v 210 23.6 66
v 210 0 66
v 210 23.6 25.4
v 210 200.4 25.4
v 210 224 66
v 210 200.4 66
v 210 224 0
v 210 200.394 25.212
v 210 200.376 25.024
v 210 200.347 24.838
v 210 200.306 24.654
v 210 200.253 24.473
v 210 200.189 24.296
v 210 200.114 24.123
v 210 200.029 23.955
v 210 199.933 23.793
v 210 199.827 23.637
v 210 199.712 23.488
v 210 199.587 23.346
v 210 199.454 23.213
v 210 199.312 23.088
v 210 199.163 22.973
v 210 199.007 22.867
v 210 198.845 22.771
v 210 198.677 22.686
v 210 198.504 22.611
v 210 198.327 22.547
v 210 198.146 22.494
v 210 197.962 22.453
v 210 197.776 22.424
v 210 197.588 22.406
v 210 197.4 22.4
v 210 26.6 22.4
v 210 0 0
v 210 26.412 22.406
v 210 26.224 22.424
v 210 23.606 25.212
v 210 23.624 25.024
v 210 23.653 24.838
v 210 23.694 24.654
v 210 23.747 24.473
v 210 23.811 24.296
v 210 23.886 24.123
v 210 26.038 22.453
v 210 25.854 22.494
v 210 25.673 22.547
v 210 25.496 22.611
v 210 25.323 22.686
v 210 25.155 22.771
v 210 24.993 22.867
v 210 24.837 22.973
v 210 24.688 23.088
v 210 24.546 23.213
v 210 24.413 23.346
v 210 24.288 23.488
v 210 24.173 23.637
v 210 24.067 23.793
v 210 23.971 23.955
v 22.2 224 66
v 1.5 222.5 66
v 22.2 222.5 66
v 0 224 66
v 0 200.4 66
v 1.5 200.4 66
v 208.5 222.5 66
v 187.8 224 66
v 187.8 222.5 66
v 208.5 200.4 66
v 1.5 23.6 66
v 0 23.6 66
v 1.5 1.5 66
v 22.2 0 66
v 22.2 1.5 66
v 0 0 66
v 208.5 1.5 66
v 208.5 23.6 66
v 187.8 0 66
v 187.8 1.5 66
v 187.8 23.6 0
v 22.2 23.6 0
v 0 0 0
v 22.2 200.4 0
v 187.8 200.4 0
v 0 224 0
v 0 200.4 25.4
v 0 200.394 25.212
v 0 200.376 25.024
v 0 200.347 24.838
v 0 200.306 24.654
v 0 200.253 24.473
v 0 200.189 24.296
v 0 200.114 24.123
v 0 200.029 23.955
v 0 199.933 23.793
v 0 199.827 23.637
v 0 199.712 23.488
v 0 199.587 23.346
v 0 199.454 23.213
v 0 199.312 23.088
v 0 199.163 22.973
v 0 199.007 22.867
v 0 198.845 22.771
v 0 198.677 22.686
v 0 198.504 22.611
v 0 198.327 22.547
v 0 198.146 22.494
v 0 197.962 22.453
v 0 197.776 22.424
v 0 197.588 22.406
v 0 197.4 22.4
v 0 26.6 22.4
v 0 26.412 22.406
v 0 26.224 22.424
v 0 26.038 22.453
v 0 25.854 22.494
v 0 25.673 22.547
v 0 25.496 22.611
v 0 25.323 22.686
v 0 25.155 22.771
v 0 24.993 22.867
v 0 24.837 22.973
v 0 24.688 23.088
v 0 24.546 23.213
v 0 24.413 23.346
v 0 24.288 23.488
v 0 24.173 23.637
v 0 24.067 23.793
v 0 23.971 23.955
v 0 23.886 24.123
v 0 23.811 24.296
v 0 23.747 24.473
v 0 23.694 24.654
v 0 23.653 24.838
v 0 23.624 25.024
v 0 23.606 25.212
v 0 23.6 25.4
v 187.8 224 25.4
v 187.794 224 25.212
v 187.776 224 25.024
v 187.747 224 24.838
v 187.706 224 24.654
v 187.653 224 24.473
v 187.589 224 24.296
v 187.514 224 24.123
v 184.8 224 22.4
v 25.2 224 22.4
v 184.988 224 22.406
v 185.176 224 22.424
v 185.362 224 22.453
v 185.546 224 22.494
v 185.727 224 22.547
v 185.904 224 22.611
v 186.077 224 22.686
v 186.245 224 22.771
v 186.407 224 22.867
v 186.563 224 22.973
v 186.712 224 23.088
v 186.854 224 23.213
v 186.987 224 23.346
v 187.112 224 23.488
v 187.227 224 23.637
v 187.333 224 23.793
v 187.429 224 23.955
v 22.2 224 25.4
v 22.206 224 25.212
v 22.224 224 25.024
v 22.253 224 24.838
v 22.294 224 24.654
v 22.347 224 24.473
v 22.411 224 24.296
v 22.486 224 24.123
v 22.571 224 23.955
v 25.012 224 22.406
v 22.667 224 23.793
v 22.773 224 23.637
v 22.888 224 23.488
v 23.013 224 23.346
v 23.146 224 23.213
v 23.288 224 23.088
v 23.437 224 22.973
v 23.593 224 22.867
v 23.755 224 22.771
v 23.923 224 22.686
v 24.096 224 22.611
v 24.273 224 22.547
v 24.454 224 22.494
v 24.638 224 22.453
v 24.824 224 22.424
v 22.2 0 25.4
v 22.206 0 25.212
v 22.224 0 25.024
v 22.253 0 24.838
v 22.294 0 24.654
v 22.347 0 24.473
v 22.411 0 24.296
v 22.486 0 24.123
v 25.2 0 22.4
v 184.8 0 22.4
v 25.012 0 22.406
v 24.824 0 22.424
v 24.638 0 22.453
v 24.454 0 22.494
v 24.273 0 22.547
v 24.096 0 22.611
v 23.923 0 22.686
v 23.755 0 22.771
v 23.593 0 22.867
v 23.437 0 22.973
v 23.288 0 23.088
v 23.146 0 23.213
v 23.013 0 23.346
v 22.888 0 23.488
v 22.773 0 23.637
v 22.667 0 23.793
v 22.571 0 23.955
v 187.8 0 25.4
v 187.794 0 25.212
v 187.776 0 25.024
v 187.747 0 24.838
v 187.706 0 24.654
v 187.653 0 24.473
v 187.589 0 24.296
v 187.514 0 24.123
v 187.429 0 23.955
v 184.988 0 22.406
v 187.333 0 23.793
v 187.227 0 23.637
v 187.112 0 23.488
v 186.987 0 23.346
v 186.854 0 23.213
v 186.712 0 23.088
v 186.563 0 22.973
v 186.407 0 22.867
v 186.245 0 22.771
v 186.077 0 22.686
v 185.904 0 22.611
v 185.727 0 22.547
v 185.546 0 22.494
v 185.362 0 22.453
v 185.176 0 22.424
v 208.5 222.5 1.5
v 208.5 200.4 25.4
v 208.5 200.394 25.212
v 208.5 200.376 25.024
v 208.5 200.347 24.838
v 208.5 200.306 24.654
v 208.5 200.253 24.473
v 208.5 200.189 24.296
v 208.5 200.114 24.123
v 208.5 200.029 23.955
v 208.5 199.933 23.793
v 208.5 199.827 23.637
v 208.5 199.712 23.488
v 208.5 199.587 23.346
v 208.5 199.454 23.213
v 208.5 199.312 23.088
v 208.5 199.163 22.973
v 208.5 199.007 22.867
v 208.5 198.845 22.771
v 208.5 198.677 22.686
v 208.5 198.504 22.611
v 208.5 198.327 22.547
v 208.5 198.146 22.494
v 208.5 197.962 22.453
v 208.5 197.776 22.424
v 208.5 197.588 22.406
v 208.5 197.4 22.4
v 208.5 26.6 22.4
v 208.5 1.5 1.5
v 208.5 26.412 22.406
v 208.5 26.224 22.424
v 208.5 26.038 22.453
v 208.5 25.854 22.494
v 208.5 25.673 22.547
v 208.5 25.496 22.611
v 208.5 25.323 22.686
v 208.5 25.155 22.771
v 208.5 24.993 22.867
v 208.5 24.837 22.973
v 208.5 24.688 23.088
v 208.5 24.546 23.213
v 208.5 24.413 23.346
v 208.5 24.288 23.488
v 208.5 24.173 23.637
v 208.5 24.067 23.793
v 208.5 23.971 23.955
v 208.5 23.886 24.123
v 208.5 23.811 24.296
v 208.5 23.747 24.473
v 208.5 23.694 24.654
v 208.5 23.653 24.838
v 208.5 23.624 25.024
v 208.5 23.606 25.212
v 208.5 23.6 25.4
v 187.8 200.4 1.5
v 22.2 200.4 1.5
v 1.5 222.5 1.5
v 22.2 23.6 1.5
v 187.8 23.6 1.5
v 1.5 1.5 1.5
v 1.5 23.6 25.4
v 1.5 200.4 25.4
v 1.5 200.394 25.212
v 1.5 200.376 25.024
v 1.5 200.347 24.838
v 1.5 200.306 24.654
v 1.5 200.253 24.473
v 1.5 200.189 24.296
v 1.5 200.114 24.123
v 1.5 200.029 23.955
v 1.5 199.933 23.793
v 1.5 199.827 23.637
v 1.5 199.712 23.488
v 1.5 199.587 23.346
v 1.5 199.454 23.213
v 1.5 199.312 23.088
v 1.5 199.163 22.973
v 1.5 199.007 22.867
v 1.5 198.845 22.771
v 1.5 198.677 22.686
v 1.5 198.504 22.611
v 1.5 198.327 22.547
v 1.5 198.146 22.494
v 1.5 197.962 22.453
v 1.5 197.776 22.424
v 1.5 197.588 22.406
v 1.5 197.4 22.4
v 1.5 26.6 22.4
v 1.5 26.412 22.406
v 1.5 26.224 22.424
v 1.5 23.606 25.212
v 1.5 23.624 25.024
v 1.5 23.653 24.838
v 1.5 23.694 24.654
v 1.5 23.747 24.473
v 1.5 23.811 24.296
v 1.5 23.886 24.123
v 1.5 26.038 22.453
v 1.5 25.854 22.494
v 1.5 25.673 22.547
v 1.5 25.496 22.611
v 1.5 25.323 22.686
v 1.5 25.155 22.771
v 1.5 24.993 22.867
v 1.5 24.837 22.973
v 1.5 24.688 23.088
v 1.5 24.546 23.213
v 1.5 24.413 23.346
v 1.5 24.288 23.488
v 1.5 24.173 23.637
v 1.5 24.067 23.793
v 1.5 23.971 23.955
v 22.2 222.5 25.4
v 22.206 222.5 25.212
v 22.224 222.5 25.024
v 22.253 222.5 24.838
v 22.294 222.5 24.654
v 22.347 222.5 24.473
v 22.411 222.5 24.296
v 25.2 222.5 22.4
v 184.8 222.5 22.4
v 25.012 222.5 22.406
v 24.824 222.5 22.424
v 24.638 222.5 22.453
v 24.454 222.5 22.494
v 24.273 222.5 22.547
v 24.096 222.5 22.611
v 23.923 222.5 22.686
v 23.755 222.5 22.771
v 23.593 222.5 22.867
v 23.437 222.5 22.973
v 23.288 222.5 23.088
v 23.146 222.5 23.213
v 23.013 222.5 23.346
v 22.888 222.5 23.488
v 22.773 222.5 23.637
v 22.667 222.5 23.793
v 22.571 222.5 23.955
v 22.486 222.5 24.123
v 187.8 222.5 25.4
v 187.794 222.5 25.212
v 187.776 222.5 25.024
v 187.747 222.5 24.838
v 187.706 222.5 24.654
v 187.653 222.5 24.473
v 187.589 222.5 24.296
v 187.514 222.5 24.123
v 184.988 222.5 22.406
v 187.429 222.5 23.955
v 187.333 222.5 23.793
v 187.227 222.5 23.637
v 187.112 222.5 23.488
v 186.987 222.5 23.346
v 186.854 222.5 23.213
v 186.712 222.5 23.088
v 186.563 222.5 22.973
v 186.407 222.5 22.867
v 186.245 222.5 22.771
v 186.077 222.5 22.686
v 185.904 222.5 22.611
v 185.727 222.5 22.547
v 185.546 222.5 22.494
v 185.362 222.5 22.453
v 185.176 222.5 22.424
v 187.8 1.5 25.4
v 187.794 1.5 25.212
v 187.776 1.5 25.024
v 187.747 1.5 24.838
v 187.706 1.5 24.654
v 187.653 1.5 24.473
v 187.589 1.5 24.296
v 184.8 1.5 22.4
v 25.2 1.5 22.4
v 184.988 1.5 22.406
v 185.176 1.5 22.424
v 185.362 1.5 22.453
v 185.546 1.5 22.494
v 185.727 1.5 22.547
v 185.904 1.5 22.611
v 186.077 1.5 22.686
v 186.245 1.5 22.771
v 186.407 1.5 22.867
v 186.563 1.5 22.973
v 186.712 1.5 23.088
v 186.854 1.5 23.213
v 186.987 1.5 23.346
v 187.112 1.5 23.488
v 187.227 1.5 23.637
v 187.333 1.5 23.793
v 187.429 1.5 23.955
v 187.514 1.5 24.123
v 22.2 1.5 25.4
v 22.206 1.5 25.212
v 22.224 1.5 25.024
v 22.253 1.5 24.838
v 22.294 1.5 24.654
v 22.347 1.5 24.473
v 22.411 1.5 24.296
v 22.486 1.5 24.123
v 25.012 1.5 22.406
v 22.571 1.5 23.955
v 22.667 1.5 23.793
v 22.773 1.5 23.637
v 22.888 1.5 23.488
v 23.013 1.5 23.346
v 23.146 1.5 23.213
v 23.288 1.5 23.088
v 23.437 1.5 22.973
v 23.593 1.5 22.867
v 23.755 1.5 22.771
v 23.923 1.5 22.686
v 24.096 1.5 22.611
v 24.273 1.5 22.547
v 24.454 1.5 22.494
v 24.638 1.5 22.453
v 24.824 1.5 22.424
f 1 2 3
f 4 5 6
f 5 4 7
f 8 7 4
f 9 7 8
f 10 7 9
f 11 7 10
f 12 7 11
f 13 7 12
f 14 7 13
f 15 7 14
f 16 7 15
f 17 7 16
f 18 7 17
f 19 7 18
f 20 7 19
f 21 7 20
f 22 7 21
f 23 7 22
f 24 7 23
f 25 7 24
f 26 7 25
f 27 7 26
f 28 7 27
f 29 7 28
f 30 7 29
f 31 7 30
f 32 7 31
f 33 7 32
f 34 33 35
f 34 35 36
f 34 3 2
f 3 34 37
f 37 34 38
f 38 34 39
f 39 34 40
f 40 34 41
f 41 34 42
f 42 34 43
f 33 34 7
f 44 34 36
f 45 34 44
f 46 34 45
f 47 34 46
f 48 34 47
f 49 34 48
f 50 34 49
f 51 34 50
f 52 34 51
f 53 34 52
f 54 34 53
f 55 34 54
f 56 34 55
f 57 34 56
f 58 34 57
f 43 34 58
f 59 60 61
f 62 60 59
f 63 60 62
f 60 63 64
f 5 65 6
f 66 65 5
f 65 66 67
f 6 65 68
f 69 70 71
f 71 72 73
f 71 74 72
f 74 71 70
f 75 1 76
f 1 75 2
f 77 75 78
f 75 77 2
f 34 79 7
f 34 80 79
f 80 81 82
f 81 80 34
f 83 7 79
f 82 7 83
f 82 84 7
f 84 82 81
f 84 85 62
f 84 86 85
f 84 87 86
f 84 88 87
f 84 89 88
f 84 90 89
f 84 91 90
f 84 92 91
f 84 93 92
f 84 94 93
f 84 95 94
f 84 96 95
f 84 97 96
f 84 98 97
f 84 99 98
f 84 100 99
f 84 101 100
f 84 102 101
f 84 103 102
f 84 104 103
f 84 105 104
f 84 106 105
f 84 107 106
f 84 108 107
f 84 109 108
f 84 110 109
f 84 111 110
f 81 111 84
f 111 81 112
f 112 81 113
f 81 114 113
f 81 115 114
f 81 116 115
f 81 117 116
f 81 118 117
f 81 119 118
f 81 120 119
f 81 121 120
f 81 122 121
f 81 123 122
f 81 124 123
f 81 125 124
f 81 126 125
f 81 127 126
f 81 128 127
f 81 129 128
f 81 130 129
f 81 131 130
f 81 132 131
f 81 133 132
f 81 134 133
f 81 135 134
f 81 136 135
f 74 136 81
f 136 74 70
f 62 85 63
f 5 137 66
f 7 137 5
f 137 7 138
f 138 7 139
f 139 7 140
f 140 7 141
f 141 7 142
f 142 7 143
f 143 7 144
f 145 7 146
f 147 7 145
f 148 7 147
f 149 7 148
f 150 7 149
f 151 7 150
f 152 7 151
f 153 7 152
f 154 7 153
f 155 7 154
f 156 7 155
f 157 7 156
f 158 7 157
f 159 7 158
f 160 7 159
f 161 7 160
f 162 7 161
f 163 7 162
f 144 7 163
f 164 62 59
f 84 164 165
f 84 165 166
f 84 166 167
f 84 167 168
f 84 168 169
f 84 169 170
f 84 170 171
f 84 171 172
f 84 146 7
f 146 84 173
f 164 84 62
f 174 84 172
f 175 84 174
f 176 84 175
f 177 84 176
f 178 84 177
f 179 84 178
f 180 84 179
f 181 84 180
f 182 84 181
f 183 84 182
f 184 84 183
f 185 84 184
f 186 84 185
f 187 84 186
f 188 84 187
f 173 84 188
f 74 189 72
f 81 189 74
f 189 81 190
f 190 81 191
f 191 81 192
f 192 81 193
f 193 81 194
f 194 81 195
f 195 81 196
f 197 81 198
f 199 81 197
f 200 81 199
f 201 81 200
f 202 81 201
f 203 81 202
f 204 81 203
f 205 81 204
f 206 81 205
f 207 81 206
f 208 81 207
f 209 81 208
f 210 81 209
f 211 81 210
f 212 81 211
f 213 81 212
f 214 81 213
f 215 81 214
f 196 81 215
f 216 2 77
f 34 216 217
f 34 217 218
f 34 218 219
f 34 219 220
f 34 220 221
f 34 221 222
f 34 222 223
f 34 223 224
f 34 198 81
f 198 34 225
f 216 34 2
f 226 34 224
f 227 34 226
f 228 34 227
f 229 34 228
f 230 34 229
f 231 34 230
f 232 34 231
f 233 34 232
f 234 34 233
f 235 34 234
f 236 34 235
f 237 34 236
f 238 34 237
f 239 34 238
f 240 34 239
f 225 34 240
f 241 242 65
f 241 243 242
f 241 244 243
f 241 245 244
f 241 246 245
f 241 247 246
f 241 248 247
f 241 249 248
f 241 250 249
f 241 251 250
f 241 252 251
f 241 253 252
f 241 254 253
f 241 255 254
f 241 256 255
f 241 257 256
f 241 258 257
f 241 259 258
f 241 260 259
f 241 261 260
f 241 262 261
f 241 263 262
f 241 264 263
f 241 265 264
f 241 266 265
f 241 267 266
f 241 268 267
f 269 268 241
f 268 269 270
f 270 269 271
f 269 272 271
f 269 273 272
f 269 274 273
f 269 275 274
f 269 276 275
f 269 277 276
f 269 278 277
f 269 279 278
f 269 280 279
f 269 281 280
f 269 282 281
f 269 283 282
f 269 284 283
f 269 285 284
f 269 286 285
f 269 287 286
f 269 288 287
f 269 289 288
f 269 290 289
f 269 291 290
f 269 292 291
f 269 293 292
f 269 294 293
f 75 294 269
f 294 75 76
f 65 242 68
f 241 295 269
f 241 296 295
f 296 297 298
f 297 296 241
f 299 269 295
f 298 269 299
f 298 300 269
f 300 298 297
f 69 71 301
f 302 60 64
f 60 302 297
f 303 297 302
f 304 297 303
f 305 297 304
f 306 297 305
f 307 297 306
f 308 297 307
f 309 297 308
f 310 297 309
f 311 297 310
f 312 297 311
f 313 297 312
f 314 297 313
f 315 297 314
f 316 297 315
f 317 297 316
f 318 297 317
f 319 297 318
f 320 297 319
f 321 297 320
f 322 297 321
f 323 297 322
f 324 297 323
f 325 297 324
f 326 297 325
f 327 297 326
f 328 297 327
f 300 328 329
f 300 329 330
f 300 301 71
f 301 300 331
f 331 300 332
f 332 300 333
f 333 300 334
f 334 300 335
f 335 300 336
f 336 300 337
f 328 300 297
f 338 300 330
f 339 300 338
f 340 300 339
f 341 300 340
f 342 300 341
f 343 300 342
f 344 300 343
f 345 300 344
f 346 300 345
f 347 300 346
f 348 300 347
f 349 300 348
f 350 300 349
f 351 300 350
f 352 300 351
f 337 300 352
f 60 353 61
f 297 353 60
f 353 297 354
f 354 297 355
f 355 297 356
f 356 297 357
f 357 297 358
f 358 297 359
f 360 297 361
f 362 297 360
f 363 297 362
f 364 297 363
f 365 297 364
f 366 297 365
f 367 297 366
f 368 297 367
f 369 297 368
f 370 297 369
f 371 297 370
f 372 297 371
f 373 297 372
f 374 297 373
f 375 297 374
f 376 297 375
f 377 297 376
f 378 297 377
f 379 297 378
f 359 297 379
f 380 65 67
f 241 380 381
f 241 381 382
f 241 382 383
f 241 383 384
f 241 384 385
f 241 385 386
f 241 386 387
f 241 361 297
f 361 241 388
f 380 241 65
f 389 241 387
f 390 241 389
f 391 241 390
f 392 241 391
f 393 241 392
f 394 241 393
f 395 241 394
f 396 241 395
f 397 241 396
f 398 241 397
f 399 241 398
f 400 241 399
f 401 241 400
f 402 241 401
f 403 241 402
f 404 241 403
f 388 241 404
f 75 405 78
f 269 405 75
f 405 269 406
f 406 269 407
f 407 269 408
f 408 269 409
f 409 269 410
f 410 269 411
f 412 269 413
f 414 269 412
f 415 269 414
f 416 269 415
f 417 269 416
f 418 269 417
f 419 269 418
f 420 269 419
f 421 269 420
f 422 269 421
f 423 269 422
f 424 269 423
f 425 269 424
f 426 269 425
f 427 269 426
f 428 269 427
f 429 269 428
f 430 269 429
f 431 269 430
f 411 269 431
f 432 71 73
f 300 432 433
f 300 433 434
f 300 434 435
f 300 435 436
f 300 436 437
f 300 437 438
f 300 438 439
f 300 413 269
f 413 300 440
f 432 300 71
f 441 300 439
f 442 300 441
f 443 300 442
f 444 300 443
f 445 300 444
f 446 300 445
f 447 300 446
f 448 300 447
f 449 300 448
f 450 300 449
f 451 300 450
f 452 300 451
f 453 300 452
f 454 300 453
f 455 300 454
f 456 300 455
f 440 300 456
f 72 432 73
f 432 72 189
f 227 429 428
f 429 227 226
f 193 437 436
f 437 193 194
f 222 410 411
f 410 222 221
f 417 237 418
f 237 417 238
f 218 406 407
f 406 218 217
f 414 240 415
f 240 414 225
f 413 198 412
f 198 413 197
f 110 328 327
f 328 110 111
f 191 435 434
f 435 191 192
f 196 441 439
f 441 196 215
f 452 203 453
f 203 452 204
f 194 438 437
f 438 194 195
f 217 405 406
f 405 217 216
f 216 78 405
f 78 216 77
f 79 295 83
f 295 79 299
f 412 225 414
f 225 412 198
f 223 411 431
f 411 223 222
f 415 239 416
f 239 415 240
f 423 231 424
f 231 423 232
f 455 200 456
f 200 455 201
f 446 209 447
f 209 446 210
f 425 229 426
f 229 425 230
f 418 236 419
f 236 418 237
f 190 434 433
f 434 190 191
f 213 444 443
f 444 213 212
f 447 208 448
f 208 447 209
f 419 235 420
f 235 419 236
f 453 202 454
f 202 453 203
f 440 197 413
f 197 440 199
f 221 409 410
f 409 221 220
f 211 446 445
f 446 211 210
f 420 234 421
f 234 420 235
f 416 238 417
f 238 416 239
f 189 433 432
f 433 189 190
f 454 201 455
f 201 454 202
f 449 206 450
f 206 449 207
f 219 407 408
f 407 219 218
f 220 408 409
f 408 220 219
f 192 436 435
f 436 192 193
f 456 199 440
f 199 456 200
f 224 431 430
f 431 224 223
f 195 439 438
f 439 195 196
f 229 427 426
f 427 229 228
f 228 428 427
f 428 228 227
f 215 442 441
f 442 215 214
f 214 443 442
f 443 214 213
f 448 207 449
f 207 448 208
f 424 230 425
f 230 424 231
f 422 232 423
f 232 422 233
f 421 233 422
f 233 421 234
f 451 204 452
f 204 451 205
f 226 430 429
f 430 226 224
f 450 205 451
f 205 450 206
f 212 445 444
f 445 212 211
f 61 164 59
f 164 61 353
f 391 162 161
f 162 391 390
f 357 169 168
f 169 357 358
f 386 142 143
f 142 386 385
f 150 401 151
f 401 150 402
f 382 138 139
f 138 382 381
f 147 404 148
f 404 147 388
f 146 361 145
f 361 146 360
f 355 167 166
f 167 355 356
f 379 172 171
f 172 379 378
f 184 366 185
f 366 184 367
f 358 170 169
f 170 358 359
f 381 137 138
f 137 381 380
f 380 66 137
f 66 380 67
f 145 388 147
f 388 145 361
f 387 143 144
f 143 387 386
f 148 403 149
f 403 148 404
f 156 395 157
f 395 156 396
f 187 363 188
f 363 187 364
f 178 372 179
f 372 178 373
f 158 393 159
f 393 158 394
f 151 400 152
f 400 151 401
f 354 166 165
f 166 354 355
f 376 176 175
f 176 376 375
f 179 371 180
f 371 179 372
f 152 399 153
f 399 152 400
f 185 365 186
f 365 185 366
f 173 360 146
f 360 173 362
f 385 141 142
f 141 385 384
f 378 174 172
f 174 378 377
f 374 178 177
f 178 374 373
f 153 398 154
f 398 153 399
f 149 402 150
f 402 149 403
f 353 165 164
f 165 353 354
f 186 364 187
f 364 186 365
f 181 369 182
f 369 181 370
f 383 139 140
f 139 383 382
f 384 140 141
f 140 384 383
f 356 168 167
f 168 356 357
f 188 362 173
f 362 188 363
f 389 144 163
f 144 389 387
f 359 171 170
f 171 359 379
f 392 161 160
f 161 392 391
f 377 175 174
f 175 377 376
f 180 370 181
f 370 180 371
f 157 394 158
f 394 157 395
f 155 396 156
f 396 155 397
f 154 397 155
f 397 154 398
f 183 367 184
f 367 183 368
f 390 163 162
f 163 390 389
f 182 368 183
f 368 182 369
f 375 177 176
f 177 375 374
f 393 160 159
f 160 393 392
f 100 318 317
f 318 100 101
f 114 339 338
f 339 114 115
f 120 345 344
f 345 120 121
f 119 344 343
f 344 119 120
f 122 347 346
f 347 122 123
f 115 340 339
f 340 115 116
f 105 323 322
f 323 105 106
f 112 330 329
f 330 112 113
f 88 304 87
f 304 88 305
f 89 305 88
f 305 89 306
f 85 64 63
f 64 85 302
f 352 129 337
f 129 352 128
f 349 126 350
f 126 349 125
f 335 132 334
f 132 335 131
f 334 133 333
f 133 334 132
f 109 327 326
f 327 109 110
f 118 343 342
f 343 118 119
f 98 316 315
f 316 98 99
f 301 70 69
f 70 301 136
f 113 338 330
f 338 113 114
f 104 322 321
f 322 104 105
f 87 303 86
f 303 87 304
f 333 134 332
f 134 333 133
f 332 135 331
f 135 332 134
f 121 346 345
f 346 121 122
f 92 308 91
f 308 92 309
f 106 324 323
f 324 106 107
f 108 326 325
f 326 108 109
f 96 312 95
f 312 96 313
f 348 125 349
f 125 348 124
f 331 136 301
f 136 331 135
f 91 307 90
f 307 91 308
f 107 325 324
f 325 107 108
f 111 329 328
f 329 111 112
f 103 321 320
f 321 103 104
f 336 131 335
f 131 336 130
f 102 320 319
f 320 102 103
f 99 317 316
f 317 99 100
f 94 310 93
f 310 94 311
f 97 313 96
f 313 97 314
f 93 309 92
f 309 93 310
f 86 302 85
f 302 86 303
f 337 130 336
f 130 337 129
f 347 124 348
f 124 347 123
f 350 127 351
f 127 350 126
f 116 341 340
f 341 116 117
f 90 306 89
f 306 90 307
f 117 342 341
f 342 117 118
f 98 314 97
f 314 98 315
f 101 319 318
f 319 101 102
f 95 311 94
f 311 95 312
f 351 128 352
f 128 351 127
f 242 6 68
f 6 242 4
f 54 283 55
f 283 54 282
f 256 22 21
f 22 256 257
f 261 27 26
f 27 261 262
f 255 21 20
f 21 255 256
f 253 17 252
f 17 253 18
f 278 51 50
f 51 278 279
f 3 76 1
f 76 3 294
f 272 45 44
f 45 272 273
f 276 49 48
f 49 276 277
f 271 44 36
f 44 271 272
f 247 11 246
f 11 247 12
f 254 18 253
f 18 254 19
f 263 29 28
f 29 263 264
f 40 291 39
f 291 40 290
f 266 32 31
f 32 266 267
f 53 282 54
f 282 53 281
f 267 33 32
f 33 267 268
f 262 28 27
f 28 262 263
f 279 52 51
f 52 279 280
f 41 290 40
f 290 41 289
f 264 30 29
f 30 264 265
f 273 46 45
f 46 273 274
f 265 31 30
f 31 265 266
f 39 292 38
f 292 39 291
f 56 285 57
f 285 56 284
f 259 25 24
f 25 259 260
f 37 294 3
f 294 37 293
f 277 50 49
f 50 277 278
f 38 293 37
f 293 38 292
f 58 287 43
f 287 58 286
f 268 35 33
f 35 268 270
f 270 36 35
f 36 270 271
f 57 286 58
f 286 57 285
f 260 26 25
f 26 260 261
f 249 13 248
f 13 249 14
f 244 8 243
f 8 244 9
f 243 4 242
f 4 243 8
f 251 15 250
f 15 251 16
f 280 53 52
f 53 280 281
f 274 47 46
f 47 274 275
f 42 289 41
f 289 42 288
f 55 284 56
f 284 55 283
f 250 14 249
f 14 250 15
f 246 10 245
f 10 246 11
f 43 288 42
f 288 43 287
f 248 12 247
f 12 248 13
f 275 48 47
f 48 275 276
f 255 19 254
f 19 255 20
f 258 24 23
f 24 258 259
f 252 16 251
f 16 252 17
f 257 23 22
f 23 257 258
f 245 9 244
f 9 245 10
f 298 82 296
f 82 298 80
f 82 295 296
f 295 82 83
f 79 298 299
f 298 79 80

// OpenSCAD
include <boardgame_insert_toolkit_lib.2.scad>;

// determines whether lids are output.
g_b_print_lid = true;

// determines whether boxes are output.
g_b_print_box = true; 

// Focus on one box
g_isolated_print_box = ""; 

// Used to visualize how all of the boxes fit together. 
g_b_visualization = false;          
        
// this is the outer wall thickness. 
//Default = 1.5mm
g_wall_thickness = 1.5;

// The tolerance value is extra space put between planes of the lid and box that fit together.
// Increase the tolerance to loosen the fit and decrease it to tighten it.
//
// Note that the tolerance is applied exclusively to the lid.
// So if the lid is too tight or too loose, change this value ( up for looser fit, down for tighter fit ) and 
// you only need to reprint the lid.
// 
// The exception is the stackable box, where the bottom of the box is the lid of the box below,
// in which case the tolerance also affects that box bottom.
//
g_tolerance = 0.15;

// This adjusts the position of the lid detents downward. 
// The larger the value, the bigger the gap between the lid and the box.
g_tolerance_detents_pos = 0.1;

aw_x = 210;
aw_y = 224;
aw_z = 66;

data =
  [
    [
      "hex tile box",
      [
        [ BOX_SIZE_XYZ, [aw_x, aw_y, aw_z] ],
        [ BOX_NO_LID_B, t],
        [
          BOX_COMPONENT,
          [
            [ CMP_NUM_COMPARTMENTS_XY, [1, 1] ],
            [
              CMP_COMPARTMENT_SIZE_XYZ,
              [
                aw_x - 2 * g_wall_thickness,
                aw_y - 2 * g_wall_thickness,
                aw_z - 1 * g_wall_thickness
              ]
            ],
            //[ CMP_SHAPE, HEX ],
            //[ CMP_SHAPE_VERTICAL_B, t ],
            [ POSITION_XY, [ CENTER, CENTER ] ],
            [ CMP_CUTOUT_SIDES_4B, [ t, t, t, t ] ],
            [ CMP_CUTOUT_DEPTH_PCT, 0 ],
            [ CMP_CUTOUT_WIDTH_PCT, 80 ],
            [ CMP_CUTOUT_HEIGHT_PCT, 60 ],
            //[ CMP_CUTOUT_TYPE, BOTH ], // BOTH, INTERIOR, EXTERIOR
            [ CMP_CUTOUT_BOTTOM_B, t ], // BOTH, INTERIOR, EXTERIOR
            //[ CMP_CUTOUT_CORNERS_4B, [ t, t, t, t ] ],
            //[CMP_SHEAR,                     [0,45]],
          ]
        ],                            
      ]
    ],
  ];


MakeAll();
